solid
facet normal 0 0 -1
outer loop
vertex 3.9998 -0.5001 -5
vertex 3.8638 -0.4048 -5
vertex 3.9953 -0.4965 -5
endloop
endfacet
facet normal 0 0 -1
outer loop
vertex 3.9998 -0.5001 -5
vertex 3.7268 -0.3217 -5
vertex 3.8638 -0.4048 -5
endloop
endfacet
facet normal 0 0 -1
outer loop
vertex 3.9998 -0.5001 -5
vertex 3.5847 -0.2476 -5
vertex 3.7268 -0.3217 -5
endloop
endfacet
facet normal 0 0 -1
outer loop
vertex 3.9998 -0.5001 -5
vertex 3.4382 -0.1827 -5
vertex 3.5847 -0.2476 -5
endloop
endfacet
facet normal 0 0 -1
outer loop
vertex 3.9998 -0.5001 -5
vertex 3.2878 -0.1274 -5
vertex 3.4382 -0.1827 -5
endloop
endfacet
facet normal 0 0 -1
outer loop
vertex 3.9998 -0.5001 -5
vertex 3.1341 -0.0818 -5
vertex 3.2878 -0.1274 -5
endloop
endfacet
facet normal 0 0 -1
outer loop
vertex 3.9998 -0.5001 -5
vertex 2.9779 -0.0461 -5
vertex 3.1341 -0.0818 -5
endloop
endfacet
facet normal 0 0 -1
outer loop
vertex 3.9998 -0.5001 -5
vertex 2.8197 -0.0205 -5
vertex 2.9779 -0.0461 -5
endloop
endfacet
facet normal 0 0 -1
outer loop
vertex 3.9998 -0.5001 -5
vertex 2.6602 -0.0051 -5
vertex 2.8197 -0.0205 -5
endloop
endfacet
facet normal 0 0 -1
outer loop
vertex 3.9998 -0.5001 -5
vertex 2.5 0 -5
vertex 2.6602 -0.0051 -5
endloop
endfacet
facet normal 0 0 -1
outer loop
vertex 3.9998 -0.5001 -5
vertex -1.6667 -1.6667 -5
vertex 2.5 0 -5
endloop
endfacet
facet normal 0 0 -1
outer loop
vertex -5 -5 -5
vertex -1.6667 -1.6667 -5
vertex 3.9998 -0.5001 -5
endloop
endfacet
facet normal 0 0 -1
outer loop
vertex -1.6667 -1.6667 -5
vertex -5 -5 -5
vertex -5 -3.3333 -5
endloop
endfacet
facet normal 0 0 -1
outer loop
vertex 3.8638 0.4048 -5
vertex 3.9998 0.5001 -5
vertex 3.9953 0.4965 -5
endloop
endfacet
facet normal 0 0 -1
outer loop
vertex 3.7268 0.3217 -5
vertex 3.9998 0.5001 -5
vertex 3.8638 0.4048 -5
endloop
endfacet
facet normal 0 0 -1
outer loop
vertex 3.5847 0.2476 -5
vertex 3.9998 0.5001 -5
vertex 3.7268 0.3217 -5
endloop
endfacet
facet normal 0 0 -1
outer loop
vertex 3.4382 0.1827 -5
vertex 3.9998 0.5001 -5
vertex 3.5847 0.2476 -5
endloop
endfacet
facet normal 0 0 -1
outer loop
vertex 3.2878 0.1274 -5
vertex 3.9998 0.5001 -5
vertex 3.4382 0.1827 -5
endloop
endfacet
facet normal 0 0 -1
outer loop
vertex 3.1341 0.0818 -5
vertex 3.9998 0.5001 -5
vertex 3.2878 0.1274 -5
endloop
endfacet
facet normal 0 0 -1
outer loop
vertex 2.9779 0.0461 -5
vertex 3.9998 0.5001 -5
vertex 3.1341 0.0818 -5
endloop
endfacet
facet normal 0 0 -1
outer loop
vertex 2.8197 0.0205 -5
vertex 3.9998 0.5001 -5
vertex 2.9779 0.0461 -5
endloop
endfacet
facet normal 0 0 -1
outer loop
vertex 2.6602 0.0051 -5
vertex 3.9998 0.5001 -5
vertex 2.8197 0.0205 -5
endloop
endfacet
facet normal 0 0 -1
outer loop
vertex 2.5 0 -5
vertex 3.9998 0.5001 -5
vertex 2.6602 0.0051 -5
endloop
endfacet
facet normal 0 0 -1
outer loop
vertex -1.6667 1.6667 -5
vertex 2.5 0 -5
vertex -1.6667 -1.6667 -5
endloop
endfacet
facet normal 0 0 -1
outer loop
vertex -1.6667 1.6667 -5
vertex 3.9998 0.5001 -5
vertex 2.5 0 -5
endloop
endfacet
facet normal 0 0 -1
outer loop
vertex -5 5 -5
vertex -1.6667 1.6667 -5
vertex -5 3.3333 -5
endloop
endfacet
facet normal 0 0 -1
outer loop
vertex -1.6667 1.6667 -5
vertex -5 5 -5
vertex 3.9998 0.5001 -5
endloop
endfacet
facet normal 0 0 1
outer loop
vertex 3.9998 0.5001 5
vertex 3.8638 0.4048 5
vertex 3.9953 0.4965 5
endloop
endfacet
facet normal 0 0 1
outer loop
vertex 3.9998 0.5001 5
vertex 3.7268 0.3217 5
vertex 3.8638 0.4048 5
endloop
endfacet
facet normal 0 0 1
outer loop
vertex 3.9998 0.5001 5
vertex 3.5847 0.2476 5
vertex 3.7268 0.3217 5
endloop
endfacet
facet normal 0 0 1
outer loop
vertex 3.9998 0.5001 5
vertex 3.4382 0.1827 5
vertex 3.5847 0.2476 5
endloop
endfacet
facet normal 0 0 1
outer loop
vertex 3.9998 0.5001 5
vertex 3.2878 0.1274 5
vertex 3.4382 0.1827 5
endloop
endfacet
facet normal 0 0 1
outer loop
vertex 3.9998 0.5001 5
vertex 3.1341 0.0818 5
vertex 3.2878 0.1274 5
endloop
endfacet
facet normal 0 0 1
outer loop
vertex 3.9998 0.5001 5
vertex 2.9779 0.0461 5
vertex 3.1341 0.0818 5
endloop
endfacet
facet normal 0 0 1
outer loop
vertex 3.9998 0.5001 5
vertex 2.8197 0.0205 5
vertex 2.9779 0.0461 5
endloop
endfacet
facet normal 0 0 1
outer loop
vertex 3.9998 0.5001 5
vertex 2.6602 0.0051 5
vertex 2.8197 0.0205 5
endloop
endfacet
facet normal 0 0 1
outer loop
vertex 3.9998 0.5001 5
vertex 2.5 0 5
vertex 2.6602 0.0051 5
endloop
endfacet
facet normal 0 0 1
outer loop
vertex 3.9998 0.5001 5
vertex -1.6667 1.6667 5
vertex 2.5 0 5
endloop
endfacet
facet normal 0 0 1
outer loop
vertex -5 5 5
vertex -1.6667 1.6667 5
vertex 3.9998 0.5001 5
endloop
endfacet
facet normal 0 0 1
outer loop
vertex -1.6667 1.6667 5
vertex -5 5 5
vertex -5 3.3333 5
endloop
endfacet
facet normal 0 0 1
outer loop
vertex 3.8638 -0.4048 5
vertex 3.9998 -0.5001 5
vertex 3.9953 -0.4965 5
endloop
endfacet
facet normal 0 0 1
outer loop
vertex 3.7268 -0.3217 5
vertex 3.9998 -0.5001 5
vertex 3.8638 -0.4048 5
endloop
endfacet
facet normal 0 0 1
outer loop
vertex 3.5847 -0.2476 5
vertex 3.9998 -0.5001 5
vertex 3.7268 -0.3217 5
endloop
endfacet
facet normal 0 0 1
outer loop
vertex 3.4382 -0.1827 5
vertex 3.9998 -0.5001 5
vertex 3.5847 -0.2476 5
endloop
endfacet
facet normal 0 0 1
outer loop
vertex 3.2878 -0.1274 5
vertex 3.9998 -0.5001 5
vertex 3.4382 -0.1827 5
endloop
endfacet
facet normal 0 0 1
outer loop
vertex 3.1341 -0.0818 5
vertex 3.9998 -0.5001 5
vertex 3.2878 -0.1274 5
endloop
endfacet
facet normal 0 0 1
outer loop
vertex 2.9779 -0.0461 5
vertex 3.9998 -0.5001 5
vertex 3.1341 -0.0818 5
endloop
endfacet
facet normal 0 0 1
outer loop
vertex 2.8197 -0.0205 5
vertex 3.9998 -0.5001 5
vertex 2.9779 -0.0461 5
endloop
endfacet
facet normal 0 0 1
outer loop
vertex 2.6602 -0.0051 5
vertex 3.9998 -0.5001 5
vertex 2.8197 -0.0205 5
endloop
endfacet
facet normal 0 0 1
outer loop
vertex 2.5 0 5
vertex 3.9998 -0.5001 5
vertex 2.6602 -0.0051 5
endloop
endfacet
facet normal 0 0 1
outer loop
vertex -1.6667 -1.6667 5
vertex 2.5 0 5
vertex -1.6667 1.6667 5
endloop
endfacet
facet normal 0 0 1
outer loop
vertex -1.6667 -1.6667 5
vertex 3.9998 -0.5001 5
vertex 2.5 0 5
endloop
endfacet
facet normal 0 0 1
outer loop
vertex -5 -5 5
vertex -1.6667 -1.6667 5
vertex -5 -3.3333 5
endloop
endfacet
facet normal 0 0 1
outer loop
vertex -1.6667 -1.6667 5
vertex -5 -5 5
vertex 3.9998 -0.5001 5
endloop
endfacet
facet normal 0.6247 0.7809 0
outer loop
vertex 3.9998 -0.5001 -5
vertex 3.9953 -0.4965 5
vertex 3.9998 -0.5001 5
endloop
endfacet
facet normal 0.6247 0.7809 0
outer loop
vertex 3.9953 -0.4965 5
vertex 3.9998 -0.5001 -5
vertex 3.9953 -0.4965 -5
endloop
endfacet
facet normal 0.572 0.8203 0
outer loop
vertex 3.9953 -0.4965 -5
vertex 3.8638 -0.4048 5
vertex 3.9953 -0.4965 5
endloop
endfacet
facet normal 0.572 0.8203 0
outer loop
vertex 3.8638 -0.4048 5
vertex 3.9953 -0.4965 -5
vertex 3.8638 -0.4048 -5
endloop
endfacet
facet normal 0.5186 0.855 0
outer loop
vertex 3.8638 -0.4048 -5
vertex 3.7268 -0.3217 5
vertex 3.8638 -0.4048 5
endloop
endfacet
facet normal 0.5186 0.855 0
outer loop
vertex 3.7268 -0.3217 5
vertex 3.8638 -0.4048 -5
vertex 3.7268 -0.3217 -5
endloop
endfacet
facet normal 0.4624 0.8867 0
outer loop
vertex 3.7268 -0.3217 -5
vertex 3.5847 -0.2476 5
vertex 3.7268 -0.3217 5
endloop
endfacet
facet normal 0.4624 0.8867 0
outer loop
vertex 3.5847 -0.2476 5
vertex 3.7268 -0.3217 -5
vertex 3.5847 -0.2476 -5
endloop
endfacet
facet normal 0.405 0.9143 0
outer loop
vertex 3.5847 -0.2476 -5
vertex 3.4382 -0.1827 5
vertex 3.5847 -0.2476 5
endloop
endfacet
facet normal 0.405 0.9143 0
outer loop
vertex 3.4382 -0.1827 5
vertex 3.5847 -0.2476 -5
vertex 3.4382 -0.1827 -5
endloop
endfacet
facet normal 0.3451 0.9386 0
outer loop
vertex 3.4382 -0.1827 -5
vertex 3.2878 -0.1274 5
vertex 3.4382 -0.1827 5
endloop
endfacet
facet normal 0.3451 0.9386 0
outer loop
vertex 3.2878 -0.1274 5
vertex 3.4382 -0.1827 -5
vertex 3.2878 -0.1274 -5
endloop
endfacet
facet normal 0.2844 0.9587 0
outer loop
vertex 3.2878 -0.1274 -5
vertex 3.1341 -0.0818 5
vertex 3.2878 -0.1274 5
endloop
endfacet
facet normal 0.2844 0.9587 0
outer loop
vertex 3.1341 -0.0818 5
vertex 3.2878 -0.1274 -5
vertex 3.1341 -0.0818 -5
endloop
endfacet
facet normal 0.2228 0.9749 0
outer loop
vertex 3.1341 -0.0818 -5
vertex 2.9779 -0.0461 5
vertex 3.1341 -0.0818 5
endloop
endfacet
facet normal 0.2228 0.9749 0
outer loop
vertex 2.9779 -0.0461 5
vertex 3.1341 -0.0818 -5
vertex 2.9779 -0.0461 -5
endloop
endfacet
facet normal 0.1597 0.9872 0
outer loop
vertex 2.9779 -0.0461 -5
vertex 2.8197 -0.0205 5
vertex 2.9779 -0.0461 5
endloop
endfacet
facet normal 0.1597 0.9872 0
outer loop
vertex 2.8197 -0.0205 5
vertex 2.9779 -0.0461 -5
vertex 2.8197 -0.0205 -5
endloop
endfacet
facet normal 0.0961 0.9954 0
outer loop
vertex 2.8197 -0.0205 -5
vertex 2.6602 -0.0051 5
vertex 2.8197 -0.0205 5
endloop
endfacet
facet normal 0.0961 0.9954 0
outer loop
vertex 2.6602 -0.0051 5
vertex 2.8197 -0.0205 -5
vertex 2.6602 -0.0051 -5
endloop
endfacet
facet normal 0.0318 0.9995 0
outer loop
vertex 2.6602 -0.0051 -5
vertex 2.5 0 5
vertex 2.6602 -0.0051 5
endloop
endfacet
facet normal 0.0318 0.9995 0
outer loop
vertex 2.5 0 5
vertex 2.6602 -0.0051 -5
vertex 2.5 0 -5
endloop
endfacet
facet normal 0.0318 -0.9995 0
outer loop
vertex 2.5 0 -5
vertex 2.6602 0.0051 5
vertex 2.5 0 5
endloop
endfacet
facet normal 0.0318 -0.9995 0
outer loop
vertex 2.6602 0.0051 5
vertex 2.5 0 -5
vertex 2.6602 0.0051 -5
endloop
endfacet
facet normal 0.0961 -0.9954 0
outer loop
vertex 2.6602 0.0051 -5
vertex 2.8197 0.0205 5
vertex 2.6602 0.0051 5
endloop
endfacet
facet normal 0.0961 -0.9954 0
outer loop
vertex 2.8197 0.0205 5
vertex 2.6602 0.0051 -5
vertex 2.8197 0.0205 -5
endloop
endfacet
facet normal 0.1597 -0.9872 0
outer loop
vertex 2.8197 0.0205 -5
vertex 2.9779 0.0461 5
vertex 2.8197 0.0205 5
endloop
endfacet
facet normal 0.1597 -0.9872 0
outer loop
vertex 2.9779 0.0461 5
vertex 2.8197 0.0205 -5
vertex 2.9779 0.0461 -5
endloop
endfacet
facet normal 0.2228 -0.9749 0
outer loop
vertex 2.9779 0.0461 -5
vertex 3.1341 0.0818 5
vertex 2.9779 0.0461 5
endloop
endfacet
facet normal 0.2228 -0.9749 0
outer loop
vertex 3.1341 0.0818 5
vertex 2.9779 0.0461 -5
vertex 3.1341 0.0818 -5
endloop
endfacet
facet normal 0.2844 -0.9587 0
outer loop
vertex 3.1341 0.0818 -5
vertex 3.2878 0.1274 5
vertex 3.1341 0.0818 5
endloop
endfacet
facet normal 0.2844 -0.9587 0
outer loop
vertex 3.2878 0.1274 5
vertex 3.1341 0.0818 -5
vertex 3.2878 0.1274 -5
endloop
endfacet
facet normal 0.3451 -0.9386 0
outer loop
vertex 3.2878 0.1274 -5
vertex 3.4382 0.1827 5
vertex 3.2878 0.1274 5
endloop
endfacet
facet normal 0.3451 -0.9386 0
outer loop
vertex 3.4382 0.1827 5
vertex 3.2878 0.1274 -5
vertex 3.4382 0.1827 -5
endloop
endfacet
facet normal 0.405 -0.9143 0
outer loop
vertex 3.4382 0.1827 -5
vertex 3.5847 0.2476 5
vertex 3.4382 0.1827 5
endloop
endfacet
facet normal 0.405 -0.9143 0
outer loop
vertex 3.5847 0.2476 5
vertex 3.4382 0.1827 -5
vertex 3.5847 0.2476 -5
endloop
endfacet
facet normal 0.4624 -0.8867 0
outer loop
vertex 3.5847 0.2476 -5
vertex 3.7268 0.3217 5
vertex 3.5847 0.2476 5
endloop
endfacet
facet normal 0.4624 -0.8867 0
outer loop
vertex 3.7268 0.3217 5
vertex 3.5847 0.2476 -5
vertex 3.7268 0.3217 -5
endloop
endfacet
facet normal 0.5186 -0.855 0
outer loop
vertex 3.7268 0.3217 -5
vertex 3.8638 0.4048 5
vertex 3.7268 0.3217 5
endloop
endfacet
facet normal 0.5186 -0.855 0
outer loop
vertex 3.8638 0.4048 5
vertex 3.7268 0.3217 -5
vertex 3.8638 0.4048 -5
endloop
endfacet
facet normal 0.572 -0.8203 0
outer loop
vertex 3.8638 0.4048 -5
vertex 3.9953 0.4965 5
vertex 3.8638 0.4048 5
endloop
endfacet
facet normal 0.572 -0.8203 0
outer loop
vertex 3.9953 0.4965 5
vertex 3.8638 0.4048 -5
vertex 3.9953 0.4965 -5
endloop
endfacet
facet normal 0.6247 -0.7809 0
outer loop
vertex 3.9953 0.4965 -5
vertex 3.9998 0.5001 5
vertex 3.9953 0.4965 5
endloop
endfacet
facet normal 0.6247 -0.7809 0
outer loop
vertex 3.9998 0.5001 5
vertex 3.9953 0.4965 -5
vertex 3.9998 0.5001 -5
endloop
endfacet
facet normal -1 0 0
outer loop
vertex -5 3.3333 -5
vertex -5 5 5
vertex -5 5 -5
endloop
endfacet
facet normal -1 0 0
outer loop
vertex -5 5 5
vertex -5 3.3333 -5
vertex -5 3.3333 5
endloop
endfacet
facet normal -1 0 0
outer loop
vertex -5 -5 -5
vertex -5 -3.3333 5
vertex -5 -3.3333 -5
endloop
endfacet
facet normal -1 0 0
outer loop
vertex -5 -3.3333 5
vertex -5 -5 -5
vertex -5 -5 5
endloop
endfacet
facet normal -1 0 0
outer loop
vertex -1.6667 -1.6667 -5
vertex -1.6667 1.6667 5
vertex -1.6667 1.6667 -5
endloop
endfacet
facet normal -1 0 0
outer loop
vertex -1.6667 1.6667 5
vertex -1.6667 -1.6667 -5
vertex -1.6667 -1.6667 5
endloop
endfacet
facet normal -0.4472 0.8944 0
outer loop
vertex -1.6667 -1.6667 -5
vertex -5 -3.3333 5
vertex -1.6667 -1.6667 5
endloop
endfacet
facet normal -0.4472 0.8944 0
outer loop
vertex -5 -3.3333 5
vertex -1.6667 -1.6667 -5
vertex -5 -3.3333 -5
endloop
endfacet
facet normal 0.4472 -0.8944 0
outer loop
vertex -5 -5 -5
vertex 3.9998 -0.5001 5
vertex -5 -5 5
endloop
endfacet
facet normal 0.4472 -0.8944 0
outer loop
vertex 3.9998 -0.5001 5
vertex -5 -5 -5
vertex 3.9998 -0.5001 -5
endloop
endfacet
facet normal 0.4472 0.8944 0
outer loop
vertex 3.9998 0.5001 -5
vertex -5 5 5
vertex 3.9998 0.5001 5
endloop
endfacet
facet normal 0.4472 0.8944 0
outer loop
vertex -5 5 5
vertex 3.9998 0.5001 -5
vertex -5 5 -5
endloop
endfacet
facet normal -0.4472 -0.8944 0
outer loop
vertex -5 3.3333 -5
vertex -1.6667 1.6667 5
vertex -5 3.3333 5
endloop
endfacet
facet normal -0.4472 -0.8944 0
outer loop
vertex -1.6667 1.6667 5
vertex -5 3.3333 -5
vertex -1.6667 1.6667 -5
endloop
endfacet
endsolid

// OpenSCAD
// Generated by SolidPython 1.1.3 on 2025-02-20 04:03:41
$fn=50;


intersection() {
	translate(v = [-5.0000000000, -5.0000000000, -5.0000000000]) {
		linear_extrude(height = 10) {
			polygon(points = [[7.5000000000, 10.0000000000], [7.6601755500, 9.9948634819], [7.8196929042, 9.9794750346], [7.9778965718, 9.9538978925], [8.1341364598, 9.9182371576], [8.2877705451, 9.8726393675], [8.4381675122, 9.8172918934], [8.5847093478, 9.7524221698], [8.7267938800, 9.6782967603], [8.8638372530, 9.5952202622], [8.9952763262, 9.5035340547], [9.1205709883, 9.4036148959], [9.2392063765, 9.2958733752], [9.3506949927, 9.1807522257], [9.4545787062, 9.0587245046], [9.5504306365, 8.9302916503], [9.6378569075, 8.7959814208], [9.7164982659, 8.6563457256], [9.7860315575, 8.5119583578], [9.8461710551, 8.3634126361], [9.8966696326, 8.2113189666], [9.9373197805, 8.0563023349], [9.9679544585, 7.8989997376], [9.9884477824, 7.7400575648], [9.9987155405, 7.5801289439], [9.9987155405, 7.4198710561], [9.9884477824, 7.2599424352], [9.9679544585, 7.1010002624], [9.9373197805, 6.9436976651], [9.8966696326, 6.7886810334], [9.8461710551, 6.6365873639], [9.7860315575, 6.4880416422], [9.7164982659, 6.3436542744], [9.6378569075, 6.2040185792], [9.5504306365, 6.0697083497], [9.4545787062, 5.9412754954], [9.3506949927, 5.8192477743], [9.2392063765, 5.7041266248], [9.1205709883, 5.5963851041], [8.9952763262, 5.4964659453], [8.8638372530, 5.4047797378], [8.7267938800, 5.3217032397], [8.5847093478, 5.2475778302], [8.4381675122, 5.1827081066], [8.2877705451, 5.1273606325], [8.1341364598, 5.0817628424], [7.9778965718, 5.0461021075], [7.8196929042, 5.0205249654], [7.6601755500, 5.0051365181], [7.5000000000, 5.0000000000], [7.5000000000, 5.0000000000], [7.6601755500, 4.9948634819], [7.8196929042, 4.9794750346], [7.9778965718, 4.9538978925], [8.1341364598, 4.9182371576], [8.2877705451, 4.8726393675], [8.4381675122, 4.8172918934], [8.5847093478, 4.7524221698], [8.7267938800, 4.6782967603], [8.8638372530, 4.5952202622], [8.9952763262, 4.5035340547], [9.1205709883, 4.4036148959], [9.2392063765, 4.2958733752], [9.3506949927, 4.1807522257], [9.4545787062, 4.0587245046], [9.5504306365, 3.9302916503], [9.6378569075, 3.7959814208], [9.7164982659, 3.6563457256], [9.7860315575, 3.5119583578], [9.8461710551, 3.3634126361], [9.8966696326, 3.2113189666], [9.9373197805, 3.0563023349], [9.9679544585, 2.8989997376], [9.9884477824, 2.7400575648], [9.9987155405, 2.5801289439], [9.9987155405, 2.4198710561], [9.9884477824, 2.2599424352], [9.9679544585, 2.1010002624], [9.9373197805, 1.9436976651], [9.8966696326, 1.7886810334], [9.8461710551, 1.6365873639], [9.7860315575, 1.4880416422], [9.7164982659, 1.3436542744], [9.6378569075, 1.2040185792], [9.5504306365, 1.0697083497], [9.4545787062, 0.9412754954], [9.3506949927, 0.8192477743], [9.2392063765, 0.7041266248], [9.1205709883, 0.5963851041], [8.9952763262, 0.4964659453], [8.8638372530, 0.4047797378], [8.7267938800, 0.3217032397], [8.5847093478, 0.2475778302], [8.4381675122, 0.1827081066], [8.2877705451, 0.1273606325], [8.1341364598, 0.0817628424], [7.9778965718, 0.0461021075], [7.8196929042, 0.0205249654], [7.6601755500, 0.0051365181], [7.5000000000, 0.0000000000], [0, 0], [0, 10]]);
		}
	}
	rotate(a = -90, v = [0, 0, 1]) {
		translate(v = [-5.0000000000, -5.0000000000, -5.0000000000]) {
			linear_extrude(height = 10) {
				polygon(points = [[0, 0], [5.0000000000, 10], [10, 0], [8.3333333333, 0], [6.6666666667, 3.3333333333], [3.3333333333, 3.3333333333], [1.6666666667, 0]]);
			}
		}
	}
}
/***********************************************
*********      SolidPython code:      **********
************************************************
 
from solid import *
from solid.utils import *

import math
import matplotlib.pyplot as plt
import subprocess
import os

class Hole:
    def __init__(self, x, y, radius):
        """
        Hole defined by:
        :param x: x dimension for center point of the circle as a ratio of letter height
        :param y: y dimension for center point of the circle as a ratio of letter height
        :param radius: radius of circle as a ratio of letter height
        """
        self.x = x
        self.y = y
        self.radius = radius

class Letter3D:
    def __init__(self, name, outer_shape_points, height, holes=None):
        """
        3D Letter defined by:
        :param name: name of letter
        :param outer_shape_points: points defining the outer shape of the letter
        :param heigh: size of cube that letter fits inside
        :param holes: list of Holes
        """
        self.name = name
        self.outer_shape_points = outer_shape_points
        self.holes = holes if holes is None else []
        self.height = height


    def generate(self):
        shape = polygon(points=self.outer_shape_points)

        if self.holes:
            for hole in self.holes:
                circle_hole = circle(r=hole.radius*self.height)
                positioned_hole = translate([hole.x*self.height, hole.y*self.height])(circle_hole)
                shape = difference()(shape, positioned_hole)
        
        shape_3d = linear_extrude(height=self.height)(shape)
        shape_3d = translate([-self.height/2, -self.height/2, -self.height/2])(shape_3d)
        return shape_3d
    
    def render(self):
        scad_render_to_file(self.shape, f"output/{self.name}.scad", file_header='$fn=50;')
        subprocess.run(["C:\\Program Files\\OpenSCAD\\openscad.exe", "-o", f"output\\{self.name}.stl", f"output\\{self.name}.scad"])


class TwoLetter3D:
    def __init__(self, height, letterA, letterA_face, letterB=None, letterB_face=None):
        self.height = height
        self.letterA = letterA
        self.letterB = letterB
        self.letterA_face = letterA_face
        self.letterB_face = letterB_face

    def call_letter_generation(self, letter):
        letter = letter.upper()
        function_name = f"letter_{letter}"
        func = globals().get(function_name)
        if func is None:
            raise ValueError(f"No letter generation function defined for letter '{letter}'.")
        else:
            print(func)
        return func(self.height)
    
    def rotate_object(self, face, shape):
        face = face.lower()
        if face == "z":
            return shape
        if face == "x":
            return rotate(a=90, v=[0,1,0])(shape)
        if face == "y":
            return rotate(a=-90, v=[0,0,1])(shape)
        else:
            raise ValueError("Face must be one of 'x', 'y', or 'z'.")

    def render(self):
        if self.letterA:
            letterA3D = self.call_letter_generation(self.letterA)
            letterA3D = self.rotate_object(self.letterA_face, letterA3D)

        if self.letterB:
            letterB3D = self.call_letter_generation(self.letterB)
            letterB3D = self.rotate_object(self.letterB_face, letterB3D)
            combined = intersection()(letterA3D, letterB3D)
            file_name = self.letterA + self.letterB
            scad_render_to_file(combined, f"output/{file_name}.scad", file_header='$fn=50;')
            subprocess.run(["C:\\Program Files\\OpenSCAD\\openscad.exe", "-o", f"output\\{file_name}.stl", f"output\\{file_name}.scad"])
            return
        else:
            file_name = self.letterA
            scad_render_to_file(letterA3D, f"output/{file_name}.scad", file_header='$fn=50;')
            subprocess.run(["C:\\Program Files\\OpenSCAD\\openscad.exe", "-o", f"output\\{file_name}.stl", f"output\\{file_name}.scad"])
    
                

def arc_points(radius, start_angle, end_angle, center=[0,0], num_points=50):
    angles = [start_angle + i * (end_angle - start_angle) / (num_points - 1)
              for i in range(num_points)]
    points = [
        (center[0] + radius * math.cos(math.radians(angle)),
         center[1] + radius * math.sin(math.radians(angle)))
        for angle in angles
    ]
    return points

def letter_A(h):
    shape_points = [(0,0), (h/2, h), (h, 0), (5/6*h, 0), (2/3*h, 1/3*h), (1/3*h, 1/3*h), (h/6, 0)]
    holes = [Hole(1/2, 7/12, 1/6)]
    A = Letter3D("A", shape_points, h, holes)
    return A.generate()

def letter_B(h):
    top_arc_points = arc_points(h/4, 90, -90, center=[3/4*h, 3/4*h])
    bottom_arc_points = arc_points(h/4, 90, -90, center=[3/4*h, h/4])
    other_points = [(0,0),(0,h)]

    shape_points = top_arc_points + bottom_arc_points + other_points
    holes = [Hole(1/2, 3/4, 1/6), Hole(1/2, 1/4, 1/6)]
    B = Letter3D("B", shape_points, h, holes)
    return B.generate()

def letter_C(h):
    outer_arc_points = arc_points(h/2, 30, 330, center=[h/2,h/2])
    inner_arc_points = arc_points(h/4, 30, 330, center=[h/2,h/2])[::-1]
    shape_points = outer_arc_points + inner_arc_points
    # print(shape_points)
    C = Letter3D("C", shape_points, h)
    return C.generate()


def letter_D(h):
    outer_arc_points = arc_points(h/2, 90, -90, center= [h/2, h/2])
    shape_points = outer_arc_points + [(0,0), (0, h)]
    holes = [Hole(1/2, 1/2, 1/6)]
    D = Letter3D("D", shape_points, h, holes)
    return D.generate()

def letter_E(h):
    points = [(0,0), (h,0), (h,h/5), (h/5,h/5), (h/5,2/5*h), (3/4*h,2/5*h), (3/4*h,3/5*h), (h/5,3/5*h), (h/5,4/5*h), (h,4/5*h), (h,h), (0,h)]
    E = Letter3D("E", points, h)
    return E.generate()

def letter_F(h):
    points = [(0,0), (h/5,0), (h/5,2/5*h), (3/4*h,2/5*h), (3/4*h,3/5*h), (h/5,3/5*h), (h/5,4/5*h), (h,4/5*h), (h,h), (0,h)]
    F = Letter3D("F", points, h)
    return F.generate()

if __name__ == "__main__":
    os.makedirs("output", exist_ok=True)

    letters = [chr(x) for x in range(ord('A'), ord('F') + 1)]
    for letter in letters:
        for other_letter in letters:
            shape = TwoLetter3D(10, letter, "z", other_letter, "y")
            shape.render()
 
 
************************************************/
